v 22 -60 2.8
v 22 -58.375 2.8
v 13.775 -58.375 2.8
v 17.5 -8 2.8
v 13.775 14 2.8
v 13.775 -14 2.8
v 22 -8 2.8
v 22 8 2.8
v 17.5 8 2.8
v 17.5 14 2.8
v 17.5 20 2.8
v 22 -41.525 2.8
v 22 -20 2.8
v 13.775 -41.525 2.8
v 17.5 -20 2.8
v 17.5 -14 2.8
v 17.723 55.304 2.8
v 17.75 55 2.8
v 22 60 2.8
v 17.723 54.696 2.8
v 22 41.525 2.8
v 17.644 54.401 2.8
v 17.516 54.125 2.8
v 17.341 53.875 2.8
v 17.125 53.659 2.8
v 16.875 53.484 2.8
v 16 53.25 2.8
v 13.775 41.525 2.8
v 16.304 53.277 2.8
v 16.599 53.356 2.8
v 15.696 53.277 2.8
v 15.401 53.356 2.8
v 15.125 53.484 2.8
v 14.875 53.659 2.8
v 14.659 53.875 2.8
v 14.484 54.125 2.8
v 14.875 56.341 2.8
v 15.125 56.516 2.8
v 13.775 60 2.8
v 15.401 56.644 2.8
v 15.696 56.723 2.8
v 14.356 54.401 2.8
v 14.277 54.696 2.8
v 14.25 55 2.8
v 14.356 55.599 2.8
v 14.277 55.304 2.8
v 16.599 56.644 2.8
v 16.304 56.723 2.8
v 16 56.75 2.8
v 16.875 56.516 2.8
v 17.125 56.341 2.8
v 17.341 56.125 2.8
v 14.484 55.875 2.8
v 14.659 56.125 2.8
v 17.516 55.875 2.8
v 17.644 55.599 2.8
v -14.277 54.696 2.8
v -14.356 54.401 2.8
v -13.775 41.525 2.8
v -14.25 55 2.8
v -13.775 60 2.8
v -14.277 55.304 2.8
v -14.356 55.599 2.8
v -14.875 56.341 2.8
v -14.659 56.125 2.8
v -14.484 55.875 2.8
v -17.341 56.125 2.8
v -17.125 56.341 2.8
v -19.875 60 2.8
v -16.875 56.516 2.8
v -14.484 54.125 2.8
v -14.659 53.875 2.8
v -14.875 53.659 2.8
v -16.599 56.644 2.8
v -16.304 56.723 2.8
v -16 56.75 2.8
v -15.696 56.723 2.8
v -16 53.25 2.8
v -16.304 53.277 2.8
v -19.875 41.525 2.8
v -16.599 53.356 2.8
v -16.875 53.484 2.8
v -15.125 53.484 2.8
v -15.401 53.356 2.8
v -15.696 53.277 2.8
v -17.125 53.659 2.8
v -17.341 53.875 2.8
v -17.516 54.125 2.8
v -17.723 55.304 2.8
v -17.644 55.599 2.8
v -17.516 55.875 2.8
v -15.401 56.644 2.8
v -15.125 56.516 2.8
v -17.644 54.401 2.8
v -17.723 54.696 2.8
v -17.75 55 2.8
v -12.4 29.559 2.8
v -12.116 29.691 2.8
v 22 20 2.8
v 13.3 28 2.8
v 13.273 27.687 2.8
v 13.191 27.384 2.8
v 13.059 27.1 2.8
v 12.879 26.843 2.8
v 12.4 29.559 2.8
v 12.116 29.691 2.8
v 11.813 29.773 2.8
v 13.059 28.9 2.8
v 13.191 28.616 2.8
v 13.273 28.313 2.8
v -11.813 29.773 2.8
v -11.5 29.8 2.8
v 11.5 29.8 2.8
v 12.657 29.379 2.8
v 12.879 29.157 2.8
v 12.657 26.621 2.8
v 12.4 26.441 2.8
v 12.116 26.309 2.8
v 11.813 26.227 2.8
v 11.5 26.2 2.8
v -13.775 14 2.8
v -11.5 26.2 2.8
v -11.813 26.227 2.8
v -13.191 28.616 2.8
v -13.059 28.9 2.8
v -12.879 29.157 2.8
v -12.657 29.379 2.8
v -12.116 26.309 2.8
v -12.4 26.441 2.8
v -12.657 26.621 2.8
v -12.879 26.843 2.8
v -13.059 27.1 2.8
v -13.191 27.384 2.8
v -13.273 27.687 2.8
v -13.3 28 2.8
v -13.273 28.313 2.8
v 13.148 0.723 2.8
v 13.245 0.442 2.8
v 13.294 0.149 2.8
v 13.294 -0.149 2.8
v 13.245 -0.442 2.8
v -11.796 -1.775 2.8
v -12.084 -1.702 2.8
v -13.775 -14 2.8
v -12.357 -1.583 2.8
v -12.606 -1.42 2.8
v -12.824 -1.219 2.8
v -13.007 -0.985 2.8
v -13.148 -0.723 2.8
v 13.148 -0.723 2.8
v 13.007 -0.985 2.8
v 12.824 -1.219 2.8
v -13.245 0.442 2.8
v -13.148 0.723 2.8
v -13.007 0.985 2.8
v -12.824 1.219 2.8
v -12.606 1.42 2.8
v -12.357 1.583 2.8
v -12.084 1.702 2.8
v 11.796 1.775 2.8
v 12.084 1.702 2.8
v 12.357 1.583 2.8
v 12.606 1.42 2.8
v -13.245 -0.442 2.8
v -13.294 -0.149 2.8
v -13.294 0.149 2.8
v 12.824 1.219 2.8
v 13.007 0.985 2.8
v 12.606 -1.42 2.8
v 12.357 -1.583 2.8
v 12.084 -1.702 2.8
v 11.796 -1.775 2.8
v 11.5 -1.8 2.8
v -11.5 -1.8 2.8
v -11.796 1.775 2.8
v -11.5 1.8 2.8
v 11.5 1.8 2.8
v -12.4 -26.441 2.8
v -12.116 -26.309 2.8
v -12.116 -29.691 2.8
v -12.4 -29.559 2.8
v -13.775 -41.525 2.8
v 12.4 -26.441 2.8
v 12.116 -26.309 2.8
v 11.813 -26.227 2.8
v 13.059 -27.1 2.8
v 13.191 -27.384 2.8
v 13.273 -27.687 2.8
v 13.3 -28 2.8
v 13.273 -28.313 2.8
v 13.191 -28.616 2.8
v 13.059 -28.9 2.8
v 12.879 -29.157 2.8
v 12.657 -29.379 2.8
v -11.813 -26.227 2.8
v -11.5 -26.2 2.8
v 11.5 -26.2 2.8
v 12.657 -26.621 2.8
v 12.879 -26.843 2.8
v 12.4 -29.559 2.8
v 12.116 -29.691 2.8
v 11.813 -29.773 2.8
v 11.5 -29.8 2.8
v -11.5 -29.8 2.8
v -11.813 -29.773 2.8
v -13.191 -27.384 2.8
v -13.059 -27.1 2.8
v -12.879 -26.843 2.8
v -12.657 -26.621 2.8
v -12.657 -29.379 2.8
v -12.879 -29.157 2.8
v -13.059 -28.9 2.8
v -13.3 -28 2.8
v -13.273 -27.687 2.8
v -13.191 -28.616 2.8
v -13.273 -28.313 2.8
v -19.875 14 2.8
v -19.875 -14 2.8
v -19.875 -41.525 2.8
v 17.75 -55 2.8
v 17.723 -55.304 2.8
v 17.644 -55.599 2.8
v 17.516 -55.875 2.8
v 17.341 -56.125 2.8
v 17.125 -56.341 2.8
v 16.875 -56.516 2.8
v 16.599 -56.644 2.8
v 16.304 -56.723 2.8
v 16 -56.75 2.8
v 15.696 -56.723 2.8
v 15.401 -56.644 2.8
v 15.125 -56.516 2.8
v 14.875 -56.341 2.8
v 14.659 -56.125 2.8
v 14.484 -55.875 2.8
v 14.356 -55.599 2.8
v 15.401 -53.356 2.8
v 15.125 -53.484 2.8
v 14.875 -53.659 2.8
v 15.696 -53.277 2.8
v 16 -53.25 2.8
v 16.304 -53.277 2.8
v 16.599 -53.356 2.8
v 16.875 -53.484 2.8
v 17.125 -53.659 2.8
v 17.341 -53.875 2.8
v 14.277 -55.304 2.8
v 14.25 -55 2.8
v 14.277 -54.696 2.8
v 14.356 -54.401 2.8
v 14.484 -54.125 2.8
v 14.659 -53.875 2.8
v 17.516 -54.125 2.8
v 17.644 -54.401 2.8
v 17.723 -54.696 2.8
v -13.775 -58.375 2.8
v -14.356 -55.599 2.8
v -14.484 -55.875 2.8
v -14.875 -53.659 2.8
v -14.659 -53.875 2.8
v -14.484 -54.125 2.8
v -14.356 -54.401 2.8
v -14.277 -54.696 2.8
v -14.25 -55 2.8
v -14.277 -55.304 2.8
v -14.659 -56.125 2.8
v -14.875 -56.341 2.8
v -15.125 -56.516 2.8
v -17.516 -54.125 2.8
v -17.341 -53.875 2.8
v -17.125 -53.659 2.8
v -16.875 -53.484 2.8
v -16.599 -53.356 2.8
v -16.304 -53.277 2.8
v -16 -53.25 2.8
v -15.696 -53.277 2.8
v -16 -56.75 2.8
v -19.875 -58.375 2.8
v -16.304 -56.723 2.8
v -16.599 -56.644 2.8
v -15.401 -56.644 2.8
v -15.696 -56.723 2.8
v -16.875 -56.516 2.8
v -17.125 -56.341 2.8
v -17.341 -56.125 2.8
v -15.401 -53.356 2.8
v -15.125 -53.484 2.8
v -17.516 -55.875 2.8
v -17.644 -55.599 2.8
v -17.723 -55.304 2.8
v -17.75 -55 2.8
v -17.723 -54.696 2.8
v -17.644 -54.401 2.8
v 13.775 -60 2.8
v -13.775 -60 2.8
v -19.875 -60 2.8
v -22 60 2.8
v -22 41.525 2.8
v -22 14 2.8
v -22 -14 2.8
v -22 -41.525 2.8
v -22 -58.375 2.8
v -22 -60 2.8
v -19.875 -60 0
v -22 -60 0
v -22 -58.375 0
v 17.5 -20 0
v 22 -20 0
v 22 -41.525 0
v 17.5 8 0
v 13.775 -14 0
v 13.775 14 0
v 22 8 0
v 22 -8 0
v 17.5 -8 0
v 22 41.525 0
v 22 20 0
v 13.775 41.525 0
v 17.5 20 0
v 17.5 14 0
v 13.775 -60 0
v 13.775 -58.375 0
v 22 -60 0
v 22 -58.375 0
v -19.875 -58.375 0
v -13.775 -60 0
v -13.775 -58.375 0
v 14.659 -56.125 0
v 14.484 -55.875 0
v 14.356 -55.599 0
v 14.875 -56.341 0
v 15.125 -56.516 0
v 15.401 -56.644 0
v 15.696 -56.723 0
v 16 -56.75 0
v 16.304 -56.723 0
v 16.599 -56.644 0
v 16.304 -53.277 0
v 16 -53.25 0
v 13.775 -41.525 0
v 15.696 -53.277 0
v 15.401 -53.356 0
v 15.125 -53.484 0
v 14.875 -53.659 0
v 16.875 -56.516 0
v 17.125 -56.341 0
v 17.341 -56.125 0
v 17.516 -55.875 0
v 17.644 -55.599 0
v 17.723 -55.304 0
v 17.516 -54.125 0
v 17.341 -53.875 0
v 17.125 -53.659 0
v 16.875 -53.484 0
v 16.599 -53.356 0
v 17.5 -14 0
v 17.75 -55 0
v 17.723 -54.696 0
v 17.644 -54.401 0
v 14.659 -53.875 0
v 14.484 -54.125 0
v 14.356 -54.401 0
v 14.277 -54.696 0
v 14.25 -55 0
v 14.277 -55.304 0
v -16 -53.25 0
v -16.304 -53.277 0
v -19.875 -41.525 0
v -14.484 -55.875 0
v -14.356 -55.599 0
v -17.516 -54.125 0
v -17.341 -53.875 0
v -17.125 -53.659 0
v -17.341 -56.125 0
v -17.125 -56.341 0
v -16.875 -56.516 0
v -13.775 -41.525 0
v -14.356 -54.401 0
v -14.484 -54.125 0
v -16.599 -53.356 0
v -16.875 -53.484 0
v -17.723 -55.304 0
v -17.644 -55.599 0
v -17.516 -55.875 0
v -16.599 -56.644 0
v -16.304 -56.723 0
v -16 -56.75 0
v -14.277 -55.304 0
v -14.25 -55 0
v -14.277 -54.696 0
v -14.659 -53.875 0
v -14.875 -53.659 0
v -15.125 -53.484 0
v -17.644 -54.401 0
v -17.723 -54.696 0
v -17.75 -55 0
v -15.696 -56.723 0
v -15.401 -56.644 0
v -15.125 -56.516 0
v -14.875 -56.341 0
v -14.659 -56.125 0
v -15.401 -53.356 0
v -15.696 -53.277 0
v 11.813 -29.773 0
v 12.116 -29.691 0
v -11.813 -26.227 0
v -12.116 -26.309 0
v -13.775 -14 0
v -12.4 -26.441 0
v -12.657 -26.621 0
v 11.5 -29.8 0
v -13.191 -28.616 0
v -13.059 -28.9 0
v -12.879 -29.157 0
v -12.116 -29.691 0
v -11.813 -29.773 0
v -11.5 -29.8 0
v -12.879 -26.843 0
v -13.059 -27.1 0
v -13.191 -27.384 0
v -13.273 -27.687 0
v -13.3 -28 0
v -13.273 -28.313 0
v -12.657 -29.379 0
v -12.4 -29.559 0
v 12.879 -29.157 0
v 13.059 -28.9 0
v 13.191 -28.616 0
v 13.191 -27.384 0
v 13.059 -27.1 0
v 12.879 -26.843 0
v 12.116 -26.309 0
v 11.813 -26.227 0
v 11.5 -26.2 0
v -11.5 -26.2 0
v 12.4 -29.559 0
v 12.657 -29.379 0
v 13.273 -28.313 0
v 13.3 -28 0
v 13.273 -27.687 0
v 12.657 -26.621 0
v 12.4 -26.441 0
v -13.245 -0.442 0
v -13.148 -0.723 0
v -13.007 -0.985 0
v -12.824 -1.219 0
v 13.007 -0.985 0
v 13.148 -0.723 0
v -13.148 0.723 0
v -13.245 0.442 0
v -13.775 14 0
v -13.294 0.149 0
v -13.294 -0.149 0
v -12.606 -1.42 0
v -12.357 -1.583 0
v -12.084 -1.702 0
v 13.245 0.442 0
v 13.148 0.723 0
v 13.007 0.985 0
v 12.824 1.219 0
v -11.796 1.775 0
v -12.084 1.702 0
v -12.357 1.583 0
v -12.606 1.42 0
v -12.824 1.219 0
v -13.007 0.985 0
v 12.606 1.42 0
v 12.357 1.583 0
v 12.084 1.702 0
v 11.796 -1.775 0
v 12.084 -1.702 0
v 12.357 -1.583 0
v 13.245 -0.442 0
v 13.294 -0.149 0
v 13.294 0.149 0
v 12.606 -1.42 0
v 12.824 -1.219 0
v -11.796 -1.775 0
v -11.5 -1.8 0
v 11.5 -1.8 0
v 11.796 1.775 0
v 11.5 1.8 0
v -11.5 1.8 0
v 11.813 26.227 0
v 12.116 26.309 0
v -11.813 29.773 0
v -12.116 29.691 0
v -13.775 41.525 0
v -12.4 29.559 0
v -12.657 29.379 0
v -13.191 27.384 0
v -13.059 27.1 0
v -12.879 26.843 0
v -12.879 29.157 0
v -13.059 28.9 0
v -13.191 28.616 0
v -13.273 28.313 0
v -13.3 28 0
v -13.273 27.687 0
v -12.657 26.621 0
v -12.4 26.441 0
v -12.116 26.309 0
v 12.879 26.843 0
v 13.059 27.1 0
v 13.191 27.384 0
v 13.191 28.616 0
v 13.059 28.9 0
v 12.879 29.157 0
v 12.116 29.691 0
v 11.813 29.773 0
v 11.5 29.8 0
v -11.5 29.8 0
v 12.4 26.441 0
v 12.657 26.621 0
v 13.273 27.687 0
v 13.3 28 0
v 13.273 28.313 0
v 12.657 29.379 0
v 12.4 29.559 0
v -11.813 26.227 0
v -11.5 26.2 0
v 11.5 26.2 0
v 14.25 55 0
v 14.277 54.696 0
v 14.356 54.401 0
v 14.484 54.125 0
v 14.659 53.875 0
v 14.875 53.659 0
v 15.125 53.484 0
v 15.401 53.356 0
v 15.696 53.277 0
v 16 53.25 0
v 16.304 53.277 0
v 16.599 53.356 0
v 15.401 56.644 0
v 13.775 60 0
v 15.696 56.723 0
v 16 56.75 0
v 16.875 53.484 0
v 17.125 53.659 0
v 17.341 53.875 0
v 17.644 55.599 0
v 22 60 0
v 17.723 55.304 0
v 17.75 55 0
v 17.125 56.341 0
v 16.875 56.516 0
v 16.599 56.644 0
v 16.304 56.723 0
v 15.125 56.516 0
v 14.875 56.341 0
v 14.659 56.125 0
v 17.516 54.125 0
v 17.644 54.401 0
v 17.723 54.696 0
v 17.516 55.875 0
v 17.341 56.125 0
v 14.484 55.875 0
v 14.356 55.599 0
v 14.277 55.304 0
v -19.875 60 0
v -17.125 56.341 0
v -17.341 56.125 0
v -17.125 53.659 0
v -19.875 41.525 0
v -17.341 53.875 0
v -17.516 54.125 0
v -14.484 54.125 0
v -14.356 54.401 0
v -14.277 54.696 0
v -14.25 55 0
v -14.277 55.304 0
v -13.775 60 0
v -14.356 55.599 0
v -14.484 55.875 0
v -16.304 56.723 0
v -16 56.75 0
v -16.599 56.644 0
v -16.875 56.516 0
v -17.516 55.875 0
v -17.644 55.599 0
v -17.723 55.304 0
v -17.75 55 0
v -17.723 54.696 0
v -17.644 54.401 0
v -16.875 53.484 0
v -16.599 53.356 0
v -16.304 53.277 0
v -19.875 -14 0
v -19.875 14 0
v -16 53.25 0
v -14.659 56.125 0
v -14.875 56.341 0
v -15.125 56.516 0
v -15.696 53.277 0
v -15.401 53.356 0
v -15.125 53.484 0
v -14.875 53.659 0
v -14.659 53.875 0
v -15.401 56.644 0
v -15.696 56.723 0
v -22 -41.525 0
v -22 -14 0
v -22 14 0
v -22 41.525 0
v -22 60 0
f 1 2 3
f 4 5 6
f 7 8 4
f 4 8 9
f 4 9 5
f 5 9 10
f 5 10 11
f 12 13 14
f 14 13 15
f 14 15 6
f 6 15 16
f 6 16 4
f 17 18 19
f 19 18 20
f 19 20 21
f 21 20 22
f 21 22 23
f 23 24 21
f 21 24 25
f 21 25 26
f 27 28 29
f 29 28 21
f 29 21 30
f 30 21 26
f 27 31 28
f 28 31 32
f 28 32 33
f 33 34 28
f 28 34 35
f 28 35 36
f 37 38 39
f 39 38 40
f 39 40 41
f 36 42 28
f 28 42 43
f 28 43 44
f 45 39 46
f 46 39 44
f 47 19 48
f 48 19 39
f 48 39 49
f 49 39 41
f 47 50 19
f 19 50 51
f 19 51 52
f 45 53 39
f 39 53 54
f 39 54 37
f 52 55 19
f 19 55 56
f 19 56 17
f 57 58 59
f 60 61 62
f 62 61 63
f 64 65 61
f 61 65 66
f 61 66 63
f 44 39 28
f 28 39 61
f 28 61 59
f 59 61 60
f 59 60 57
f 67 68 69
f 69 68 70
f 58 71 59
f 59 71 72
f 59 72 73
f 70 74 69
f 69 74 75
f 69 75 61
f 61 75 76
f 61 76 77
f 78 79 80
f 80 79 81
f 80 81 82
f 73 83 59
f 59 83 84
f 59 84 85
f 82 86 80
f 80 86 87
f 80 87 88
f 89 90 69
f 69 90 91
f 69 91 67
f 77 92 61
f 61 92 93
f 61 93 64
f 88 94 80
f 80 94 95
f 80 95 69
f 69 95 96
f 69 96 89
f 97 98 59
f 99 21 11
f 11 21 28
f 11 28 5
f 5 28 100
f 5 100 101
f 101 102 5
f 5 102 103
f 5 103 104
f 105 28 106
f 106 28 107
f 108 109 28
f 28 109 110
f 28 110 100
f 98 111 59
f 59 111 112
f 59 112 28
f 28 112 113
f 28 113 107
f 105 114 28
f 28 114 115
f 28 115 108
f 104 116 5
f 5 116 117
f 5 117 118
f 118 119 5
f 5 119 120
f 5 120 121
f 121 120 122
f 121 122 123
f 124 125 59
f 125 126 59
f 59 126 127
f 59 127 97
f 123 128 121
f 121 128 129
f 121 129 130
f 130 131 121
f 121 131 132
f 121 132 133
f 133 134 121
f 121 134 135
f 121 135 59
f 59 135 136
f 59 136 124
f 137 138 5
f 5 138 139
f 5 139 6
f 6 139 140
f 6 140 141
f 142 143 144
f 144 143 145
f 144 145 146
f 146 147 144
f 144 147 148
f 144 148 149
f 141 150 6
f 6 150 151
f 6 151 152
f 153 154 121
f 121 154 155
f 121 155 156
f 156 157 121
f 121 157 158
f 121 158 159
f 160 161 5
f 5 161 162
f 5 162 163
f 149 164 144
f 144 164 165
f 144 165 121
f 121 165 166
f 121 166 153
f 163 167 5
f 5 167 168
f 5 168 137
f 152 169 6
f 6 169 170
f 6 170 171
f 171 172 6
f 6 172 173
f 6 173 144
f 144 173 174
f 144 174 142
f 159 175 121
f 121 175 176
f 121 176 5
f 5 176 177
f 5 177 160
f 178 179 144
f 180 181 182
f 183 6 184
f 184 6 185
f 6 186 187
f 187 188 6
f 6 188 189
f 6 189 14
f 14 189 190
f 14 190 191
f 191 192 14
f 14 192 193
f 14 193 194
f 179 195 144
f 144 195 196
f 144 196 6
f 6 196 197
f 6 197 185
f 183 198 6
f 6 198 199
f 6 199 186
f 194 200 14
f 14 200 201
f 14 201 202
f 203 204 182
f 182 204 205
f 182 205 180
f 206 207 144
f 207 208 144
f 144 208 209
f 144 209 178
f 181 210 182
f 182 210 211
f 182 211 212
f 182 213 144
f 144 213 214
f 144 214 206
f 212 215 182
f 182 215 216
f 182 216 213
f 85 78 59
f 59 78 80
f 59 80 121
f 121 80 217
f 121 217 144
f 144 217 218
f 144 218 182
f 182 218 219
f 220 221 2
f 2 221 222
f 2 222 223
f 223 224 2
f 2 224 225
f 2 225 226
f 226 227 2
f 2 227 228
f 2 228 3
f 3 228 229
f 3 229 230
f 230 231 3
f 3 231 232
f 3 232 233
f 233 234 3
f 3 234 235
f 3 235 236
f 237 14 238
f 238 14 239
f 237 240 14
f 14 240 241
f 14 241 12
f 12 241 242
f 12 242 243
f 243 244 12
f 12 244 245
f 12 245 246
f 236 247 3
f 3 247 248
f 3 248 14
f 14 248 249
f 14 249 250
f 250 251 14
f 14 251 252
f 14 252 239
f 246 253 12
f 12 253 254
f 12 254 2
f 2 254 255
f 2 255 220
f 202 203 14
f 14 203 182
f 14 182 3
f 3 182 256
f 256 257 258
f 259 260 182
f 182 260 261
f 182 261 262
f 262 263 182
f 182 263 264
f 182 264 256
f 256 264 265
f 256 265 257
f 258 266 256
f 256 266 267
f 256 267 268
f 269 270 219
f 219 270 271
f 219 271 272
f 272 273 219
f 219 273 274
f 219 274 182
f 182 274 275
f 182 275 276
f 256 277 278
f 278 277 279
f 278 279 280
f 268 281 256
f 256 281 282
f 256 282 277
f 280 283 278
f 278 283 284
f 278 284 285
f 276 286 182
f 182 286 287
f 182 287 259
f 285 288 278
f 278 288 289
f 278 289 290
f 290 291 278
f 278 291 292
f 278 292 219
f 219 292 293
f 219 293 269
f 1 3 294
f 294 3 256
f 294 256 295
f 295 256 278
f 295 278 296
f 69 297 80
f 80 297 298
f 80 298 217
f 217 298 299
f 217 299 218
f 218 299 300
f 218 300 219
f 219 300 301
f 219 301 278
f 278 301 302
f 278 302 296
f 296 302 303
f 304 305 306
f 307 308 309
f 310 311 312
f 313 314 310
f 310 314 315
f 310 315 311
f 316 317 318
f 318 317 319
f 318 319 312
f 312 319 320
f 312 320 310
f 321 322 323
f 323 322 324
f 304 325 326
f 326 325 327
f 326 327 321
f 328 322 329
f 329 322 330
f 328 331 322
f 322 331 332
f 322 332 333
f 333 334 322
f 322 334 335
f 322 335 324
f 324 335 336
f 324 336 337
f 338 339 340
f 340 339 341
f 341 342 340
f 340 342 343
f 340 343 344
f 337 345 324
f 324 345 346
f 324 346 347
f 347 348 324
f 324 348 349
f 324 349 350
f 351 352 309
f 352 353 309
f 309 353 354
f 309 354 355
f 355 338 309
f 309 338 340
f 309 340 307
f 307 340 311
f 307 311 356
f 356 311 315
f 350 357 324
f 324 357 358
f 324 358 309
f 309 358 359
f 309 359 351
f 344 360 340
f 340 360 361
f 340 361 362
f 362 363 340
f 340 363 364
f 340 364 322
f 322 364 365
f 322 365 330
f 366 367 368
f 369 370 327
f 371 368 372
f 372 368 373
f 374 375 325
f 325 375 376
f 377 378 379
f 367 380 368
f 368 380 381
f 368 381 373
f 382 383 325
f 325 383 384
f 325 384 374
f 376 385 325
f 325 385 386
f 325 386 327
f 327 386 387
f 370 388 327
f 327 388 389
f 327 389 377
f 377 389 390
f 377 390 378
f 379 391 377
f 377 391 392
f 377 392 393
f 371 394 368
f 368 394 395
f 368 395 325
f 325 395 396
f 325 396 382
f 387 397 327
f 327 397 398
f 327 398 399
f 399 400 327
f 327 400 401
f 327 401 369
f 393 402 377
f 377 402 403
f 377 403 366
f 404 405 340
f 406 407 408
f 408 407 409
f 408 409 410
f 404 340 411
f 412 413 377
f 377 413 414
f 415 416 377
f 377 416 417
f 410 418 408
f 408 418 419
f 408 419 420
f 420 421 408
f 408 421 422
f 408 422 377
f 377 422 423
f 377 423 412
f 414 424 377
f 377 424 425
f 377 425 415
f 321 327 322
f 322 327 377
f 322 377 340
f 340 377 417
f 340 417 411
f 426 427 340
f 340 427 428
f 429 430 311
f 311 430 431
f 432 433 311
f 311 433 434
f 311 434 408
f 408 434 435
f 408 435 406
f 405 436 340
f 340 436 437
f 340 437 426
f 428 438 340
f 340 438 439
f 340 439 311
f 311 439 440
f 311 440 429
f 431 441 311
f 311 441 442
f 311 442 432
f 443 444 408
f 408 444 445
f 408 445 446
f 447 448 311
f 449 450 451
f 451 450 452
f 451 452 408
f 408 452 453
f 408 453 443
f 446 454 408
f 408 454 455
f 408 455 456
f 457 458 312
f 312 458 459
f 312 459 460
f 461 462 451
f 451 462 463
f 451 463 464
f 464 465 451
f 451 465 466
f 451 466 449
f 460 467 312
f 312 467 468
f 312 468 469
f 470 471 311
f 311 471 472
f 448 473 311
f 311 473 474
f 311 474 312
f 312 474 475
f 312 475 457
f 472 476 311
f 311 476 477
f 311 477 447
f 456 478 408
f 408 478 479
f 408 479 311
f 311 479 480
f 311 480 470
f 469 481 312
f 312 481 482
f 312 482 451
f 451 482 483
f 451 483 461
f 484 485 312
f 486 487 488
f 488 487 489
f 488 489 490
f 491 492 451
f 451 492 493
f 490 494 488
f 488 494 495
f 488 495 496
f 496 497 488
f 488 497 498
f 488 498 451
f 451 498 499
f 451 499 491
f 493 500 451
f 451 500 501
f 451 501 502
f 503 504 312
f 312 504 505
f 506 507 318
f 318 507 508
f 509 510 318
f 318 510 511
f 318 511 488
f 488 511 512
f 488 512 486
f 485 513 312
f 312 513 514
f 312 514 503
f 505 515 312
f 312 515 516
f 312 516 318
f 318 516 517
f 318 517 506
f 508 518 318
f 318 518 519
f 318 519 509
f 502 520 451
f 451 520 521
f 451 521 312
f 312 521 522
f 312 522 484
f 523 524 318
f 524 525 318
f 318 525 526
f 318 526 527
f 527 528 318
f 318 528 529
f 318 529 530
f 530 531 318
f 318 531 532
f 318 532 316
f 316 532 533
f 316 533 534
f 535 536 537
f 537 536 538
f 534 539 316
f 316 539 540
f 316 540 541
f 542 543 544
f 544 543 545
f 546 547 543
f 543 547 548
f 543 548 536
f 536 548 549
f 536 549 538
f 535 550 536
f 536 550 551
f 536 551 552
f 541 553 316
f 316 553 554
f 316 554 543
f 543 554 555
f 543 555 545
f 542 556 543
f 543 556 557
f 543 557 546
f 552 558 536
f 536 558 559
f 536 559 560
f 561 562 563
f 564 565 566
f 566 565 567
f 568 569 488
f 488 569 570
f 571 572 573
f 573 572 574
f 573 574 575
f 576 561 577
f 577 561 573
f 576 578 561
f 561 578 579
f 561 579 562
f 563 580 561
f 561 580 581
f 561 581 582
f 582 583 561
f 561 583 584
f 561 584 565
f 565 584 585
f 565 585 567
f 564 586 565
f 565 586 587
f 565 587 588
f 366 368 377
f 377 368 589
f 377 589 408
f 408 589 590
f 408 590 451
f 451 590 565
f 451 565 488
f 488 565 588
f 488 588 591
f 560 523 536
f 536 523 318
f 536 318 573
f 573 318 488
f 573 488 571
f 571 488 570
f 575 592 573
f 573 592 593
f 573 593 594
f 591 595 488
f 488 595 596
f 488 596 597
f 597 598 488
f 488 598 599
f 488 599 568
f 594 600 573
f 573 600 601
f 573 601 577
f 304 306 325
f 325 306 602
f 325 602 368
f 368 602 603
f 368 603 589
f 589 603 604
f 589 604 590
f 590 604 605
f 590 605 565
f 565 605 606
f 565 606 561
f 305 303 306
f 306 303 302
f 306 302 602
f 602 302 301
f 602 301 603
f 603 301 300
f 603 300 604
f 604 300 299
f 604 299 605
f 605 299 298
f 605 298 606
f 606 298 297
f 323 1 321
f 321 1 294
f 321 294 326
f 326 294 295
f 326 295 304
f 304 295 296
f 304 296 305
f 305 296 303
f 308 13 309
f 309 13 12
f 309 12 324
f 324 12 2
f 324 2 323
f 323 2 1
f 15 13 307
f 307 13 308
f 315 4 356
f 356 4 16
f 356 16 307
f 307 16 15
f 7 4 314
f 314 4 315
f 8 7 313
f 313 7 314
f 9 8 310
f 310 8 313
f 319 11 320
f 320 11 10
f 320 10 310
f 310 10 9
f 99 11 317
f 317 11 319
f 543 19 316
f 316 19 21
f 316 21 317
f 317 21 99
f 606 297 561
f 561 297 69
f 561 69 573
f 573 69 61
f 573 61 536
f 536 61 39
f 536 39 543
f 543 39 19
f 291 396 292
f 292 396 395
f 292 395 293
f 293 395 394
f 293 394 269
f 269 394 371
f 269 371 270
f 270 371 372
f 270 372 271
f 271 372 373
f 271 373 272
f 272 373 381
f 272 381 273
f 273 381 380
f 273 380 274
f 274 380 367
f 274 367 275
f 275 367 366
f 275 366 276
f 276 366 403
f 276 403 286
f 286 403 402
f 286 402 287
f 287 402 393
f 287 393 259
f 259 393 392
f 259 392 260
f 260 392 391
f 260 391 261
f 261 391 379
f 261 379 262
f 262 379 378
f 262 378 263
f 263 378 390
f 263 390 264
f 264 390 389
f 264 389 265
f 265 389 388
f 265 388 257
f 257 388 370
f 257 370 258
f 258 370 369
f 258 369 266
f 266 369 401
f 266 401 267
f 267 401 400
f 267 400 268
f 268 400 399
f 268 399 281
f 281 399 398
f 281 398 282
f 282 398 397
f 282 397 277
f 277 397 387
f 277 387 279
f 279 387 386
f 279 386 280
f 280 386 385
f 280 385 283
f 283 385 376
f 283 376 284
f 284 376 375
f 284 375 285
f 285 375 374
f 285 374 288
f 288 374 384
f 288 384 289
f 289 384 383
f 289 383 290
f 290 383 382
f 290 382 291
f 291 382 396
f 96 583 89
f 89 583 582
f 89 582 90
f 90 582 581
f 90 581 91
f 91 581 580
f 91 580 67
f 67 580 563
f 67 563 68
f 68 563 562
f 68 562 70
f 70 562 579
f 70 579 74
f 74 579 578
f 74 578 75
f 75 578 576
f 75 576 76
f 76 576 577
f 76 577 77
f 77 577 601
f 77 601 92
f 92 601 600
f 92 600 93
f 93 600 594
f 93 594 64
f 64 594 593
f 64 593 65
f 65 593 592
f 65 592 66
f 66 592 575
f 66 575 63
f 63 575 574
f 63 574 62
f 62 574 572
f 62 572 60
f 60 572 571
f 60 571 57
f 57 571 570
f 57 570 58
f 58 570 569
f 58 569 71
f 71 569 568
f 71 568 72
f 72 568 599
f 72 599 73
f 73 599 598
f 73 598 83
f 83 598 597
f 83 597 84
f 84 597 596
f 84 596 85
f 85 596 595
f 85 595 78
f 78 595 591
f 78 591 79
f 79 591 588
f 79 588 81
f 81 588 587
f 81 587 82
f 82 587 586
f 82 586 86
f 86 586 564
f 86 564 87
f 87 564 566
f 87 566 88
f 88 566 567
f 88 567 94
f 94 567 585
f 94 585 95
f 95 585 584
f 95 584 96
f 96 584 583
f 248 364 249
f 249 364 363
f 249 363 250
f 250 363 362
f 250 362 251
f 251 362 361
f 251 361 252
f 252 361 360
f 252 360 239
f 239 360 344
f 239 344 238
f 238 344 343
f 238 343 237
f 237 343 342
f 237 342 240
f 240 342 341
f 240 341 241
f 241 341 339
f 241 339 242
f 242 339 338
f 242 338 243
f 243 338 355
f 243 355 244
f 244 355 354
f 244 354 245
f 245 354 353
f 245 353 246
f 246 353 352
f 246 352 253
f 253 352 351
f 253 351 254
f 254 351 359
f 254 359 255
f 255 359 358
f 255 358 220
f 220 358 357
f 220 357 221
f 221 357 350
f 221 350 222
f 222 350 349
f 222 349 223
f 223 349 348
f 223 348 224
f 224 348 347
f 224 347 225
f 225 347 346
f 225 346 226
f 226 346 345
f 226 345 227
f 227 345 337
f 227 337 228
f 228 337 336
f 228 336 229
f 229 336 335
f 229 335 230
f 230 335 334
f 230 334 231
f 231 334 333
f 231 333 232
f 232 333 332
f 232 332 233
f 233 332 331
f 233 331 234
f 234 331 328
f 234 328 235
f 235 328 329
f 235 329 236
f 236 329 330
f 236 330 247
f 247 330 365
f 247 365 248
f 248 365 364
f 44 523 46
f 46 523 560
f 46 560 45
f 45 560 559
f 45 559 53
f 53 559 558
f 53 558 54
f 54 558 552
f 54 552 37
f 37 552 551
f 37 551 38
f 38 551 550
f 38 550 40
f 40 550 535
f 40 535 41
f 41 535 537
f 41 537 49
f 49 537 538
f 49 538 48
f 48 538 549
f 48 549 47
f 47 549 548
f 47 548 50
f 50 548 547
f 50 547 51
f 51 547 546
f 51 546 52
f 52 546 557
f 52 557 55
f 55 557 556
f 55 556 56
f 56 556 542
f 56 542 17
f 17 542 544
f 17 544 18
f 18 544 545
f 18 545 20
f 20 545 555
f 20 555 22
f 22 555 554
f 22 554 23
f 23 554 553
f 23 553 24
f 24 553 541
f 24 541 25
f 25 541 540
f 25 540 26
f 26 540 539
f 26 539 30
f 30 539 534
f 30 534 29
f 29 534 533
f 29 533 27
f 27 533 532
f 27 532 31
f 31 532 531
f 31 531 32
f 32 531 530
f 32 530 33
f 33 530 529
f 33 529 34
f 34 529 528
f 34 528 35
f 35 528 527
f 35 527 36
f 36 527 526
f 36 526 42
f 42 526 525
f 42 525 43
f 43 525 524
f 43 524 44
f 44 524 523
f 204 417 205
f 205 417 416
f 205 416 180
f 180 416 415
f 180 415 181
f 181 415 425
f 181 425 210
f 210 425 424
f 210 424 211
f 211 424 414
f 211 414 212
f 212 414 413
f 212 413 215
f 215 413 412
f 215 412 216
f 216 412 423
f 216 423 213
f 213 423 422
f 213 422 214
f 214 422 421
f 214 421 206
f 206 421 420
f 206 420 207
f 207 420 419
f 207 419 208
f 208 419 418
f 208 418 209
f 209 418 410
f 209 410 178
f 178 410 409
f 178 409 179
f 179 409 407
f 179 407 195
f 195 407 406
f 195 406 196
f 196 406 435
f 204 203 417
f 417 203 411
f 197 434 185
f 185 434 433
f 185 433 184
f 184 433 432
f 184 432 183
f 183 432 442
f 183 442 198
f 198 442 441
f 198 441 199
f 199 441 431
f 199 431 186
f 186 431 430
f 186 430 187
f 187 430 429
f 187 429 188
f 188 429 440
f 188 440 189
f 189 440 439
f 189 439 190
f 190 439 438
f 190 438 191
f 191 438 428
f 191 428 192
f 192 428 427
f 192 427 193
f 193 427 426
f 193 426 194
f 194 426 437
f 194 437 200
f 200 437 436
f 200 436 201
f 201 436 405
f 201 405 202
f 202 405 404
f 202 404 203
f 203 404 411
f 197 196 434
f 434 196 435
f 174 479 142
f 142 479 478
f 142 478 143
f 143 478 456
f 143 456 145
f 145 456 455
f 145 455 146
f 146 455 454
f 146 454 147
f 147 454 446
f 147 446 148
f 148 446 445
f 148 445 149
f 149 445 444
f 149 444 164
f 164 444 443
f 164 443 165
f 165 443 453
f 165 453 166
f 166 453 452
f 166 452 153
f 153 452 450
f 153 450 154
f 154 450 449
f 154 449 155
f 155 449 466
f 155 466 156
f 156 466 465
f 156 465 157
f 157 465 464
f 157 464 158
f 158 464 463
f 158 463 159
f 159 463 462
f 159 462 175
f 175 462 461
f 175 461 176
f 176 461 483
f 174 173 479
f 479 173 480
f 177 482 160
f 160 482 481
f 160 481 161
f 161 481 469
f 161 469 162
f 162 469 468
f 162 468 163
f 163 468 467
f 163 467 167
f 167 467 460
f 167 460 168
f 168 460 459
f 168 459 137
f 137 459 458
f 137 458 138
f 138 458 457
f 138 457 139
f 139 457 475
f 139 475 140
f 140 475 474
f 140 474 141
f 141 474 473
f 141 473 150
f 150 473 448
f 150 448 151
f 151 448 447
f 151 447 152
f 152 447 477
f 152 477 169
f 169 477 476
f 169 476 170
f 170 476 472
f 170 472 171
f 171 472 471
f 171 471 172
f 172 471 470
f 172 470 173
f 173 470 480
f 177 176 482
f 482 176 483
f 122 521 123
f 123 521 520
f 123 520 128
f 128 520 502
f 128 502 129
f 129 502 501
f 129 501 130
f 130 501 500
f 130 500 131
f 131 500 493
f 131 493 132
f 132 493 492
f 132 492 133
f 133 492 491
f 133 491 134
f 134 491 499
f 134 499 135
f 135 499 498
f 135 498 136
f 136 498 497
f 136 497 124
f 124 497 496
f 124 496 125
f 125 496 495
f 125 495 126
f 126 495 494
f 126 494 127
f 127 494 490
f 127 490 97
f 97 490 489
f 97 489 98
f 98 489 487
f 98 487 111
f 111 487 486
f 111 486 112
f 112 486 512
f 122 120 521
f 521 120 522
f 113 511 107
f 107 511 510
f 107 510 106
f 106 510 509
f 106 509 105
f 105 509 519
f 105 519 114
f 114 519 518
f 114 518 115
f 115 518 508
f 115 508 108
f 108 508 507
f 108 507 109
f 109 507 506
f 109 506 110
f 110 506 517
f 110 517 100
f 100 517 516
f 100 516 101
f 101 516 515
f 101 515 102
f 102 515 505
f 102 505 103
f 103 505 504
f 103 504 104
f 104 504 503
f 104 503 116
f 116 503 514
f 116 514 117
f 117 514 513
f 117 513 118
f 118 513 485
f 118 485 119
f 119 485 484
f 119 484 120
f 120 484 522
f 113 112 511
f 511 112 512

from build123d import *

# Parameters (mm, degrees)
COVER_WITH_CLAMP_HARDWARE_CLEARANCES_PRO_R = 1.75
COVER_WITH_CLAMP_HARDWARE_CLEARANCES_DEPTH = 2.8


with BuildPart() as part:
    # Cover with clamp hardware clearances profile → Cover with clamp hardware clearances (new body)
    with BuildSketch(Plane.XY):
        Polygon((-22, -60), (22, -60), (22, -20), (17.5, -20), (17.5, -8), (22, -8), (22, 8), (17.5, 8), (17.5, 20), (22, 20), (22, 60), (-22, 60), align=None)
        with Locations((-16, -55)):
            Circle(COVER_WITH_CLAMP_HARDWARE_CLEARANCES_PRO_R, mode=Mode.SUBTRACT)
        with Locations((-16, 55)):
            Circle(COVER_WITH_CLAMP_HARDWARE_CLEARANCES_PRO_R, mode=Mode.SUBTRACT)
        with Locations((16, -55)):
            Circle(COVER_WITH_CLAMP_HARDWARE_CLEARANCES_PRO_R, mode=Mode.SUBTRACT)
        with Locations((16, 55)):
            Circle(COVER_WITH_CLAMP_HARDWARE_CLEARANCES_PRO_R, mode=Mode.SUBTRACT)
        with BuildLine():
            Line((-11.5, -29.8), (11.5, -29.8))
            ThreePointArc((11.5, -29.8), (13.3, -28), (11.5, -26.2))
            Line((11.5, -26.2), (-11.5, -26.2))
            ThreePointArc((-11.5, -26.2), (-13.3, -28), (-11.5, -29.8))
        make_face(mode=Mode.SUBTRACT)
        with BuildLine():
            Line((-11.5, -1.8), (11.5, -1.8))
            ThreePointArc((11.5, -1.8), (13.3, 0), (11.5, 1.8))
            Line((11.5, 1.8), (-11.5, 1.8))
            ThreePointArc((-11.5, 1.8), (-13.3, 0), (-11.5, -1.8))
        make_face(mode=Mode.SUBTRACT)
        with BuildLine():
            Line((-11.5, 26.2), (11.5, 26.2))
            ThreePointArc((11.5, 26.2), (13.3, 28), (11.5, 29.8))
            Line((11.5, 29.8), (-11.5, 29.8))
            ThreePointArc((-11.5, 29.8), (-13.3, 28), (-11.5, 26.2))
        make_face(mode=Mode.SUBTRACT)
    extrude(amount=COVER_WITH_CLAMP_HARDWARE_CLEARANCES_DEPTH)


solid = part.part
